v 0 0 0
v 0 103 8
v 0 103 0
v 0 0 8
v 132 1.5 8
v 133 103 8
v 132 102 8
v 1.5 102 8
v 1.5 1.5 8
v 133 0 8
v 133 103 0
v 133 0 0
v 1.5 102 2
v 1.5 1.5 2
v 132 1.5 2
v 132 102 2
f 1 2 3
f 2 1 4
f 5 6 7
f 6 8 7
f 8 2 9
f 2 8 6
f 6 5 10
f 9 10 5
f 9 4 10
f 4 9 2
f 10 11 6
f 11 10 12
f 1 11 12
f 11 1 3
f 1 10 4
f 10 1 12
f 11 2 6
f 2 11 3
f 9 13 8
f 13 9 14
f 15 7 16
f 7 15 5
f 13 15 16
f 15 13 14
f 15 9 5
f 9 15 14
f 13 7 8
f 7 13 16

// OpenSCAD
difference(){
cube([130+3,100+3,8]);
translate([1.5, 1.5, 2]){
    cube([130.5,100.5, 6]);    
}
}
